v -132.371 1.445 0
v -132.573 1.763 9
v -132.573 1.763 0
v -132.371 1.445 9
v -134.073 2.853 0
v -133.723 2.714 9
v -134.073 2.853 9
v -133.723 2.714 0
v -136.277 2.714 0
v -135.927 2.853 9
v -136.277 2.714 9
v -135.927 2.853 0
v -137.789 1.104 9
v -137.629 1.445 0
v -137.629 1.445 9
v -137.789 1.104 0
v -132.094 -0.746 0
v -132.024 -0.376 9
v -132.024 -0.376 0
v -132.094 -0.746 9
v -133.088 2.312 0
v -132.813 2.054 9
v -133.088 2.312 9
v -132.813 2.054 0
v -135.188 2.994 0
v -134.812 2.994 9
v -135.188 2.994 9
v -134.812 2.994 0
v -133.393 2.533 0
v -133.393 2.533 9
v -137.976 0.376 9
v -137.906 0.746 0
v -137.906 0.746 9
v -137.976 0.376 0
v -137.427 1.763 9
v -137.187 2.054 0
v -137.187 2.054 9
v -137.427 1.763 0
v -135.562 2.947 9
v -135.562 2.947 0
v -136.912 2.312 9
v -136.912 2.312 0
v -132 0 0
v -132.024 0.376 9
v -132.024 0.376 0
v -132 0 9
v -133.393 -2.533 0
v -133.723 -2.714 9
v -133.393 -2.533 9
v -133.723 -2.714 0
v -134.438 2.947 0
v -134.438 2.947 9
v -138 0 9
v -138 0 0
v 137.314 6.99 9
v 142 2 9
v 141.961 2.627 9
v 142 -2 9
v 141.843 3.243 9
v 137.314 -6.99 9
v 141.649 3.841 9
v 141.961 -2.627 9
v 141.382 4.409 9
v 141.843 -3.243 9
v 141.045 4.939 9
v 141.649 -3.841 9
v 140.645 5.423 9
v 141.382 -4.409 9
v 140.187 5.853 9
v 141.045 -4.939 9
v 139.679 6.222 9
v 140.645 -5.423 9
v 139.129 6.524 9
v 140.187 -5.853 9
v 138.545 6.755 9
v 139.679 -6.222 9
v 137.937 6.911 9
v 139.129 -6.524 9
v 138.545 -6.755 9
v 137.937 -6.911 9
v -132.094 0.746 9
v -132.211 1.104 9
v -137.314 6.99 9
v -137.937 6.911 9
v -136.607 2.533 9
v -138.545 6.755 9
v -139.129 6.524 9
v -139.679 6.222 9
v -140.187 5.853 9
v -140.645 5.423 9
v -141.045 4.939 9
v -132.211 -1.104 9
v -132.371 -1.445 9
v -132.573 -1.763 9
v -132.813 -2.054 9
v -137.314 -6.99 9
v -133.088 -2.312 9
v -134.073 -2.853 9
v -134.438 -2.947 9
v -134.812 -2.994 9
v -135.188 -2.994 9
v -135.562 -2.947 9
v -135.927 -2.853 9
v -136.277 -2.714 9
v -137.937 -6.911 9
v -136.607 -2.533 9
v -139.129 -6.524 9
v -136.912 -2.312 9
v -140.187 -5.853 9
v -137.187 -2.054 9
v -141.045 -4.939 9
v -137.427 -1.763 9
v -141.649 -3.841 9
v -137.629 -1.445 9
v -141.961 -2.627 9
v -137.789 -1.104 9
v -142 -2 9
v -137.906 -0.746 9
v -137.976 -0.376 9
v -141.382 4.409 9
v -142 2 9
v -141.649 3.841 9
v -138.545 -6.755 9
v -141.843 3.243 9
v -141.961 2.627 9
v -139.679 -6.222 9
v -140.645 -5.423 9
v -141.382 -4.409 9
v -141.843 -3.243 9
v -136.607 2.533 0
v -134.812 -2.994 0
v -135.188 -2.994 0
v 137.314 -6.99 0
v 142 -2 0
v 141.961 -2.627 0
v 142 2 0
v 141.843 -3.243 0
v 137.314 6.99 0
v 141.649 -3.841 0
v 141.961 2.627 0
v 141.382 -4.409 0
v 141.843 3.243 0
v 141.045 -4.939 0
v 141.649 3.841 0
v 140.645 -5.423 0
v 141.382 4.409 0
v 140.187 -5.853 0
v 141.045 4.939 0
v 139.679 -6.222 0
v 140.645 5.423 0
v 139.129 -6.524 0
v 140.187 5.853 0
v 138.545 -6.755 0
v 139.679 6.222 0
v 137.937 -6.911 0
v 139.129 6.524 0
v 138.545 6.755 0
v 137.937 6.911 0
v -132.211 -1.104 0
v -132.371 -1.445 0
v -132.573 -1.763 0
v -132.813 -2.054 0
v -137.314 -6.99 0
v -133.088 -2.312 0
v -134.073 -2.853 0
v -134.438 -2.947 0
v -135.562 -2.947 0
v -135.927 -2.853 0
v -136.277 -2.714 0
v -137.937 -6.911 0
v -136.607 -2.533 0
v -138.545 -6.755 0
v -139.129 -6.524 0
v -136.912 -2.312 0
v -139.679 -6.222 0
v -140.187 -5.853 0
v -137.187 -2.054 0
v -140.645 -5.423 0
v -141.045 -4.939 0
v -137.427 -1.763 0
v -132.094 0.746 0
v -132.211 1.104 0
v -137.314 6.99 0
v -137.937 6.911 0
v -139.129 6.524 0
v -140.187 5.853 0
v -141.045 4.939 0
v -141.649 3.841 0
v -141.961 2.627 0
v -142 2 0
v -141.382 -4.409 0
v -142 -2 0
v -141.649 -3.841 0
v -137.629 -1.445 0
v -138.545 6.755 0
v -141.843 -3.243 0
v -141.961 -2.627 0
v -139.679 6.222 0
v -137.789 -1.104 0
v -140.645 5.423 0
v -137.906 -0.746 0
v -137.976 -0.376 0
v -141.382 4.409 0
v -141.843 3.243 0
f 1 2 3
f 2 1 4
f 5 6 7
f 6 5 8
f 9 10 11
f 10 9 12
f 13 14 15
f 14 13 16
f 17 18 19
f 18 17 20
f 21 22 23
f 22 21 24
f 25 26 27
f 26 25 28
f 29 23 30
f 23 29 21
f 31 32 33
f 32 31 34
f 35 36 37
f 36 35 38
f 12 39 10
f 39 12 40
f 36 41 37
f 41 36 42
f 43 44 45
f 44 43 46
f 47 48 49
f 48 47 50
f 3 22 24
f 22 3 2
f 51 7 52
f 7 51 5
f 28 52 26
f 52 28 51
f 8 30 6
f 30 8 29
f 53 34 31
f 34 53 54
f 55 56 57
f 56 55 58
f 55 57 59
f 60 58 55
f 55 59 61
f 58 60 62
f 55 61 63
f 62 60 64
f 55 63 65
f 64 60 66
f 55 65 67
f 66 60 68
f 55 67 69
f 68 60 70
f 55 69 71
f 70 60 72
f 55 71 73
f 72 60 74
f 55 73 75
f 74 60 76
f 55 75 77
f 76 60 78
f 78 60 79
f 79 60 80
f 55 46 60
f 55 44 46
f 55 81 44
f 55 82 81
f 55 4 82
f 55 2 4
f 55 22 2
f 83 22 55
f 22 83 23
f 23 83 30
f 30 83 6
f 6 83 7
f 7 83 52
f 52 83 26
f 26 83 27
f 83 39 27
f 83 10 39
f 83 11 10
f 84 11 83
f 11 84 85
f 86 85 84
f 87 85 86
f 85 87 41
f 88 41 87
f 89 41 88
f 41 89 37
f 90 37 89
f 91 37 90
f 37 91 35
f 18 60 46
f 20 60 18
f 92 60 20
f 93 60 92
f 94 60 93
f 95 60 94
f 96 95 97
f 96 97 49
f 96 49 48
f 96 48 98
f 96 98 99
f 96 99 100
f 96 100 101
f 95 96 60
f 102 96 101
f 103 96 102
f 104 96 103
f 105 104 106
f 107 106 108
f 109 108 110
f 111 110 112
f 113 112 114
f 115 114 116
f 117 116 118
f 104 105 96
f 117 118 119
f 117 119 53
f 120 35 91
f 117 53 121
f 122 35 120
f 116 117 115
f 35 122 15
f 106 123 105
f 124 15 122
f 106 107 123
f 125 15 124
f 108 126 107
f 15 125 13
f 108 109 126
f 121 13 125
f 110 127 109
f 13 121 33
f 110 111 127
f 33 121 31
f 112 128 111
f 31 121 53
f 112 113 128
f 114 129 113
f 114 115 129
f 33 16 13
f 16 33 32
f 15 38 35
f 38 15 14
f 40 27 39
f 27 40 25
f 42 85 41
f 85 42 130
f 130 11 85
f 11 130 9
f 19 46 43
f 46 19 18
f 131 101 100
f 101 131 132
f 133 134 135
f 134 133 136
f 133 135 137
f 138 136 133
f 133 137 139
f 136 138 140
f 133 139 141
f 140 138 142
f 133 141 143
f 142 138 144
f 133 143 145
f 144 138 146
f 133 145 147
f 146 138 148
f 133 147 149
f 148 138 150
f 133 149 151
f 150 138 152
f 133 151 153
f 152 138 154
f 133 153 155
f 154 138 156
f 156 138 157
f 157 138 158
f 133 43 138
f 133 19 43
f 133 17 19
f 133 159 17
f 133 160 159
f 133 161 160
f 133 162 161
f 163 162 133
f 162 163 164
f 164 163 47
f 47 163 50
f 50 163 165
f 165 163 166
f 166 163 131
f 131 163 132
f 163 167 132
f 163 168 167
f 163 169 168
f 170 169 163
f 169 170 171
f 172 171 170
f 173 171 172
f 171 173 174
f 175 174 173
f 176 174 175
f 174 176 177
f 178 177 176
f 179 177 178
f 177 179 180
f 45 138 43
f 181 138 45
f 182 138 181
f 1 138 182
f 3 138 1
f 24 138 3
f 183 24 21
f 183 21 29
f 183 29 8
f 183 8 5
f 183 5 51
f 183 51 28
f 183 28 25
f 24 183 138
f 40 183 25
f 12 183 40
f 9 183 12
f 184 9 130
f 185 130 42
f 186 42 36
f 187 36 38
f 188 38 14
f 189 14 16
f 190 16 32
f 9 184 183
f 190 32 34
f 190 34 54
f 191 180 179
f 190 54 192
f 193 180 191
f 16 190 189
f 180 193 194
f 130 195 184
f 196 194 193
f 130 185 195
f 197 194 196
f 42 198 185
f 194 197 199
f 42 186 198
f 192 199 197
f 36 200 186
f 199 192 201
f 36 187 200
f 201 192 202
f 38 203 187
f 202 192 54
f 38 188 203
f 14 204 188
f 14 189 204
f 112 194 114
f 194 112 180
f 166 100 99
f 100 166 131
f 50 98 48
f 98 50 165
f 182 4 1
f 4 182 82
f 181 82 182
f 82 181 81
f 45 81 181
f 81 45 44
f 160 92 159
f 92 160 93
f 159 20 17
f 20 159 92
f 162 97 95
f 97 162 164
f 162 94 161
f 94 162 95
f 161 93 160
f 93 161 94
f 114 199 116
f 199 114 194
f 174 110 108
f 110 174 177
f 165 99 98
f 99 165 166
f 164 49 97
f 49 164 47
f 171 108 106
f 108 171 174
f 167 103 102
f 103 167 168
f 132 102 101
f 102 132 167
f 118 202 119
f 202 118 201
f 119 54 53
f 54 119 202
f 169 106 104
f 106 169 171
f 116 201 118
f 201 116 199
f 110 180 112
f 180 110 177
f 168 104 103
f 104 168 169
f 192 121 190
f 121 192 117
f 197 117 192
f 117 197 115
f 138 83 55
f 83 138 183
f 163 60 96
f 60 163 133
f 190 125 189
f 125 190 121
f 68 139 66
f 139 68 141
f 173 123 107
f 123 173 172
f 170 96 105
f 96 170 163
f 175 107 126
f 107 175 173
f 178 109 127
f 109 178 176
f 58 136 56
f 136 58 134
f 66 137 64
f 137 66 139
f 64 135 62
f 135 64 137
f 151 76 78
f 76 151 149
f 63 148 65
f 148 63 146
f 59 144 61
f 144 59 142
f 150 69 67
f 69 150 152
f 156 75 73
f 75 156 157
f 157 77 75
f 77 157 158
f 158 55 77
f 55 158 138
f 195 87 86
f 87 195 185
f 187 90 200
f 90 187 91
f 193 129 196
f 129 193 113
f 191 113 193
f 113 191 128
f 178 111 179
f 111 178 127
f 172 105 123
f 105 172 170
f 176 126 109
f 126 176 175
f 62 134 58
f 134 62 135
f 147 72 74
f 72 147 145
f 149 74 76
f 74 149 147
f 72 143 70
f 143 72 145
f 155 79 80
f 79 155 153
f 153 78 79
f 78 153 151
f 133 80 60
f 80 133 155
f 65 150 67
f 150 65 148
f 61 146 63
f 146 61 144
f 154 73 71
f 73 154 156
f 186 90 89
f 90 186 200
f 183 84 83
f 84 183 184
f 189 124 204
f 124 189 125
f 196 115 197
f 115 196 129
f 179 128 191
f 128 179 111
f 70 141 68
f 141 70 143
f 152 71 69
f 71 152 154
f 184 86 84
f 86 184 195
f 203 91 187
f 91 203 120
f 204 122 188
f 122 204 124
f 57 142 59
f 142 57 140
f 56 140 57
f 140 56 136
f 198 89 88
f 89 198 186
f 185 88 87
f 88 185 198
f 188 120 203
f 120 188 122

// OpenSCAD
$fn = 50;


difference() {
	union() {
		hull() {
			translate(v = [-137.0000000000, 2.0000000000, 0]) {
				cylinder(h = 9, r = 5);
			}
			translate(v = [137.0000000000, 2.0000000000, 0]) {
				cylinder(h = 9, r = 5);
			}
			translate(v = [-137.0000000000, -2.0000000000, 0]) {
				cylinder(h = 9, r = 5);
			}
			translate(v = [137.0000000000, -2.0000000000, 0]) {
				cylinder(h = 9, r = 5);
			}
		}
	}
	union() {
		translate(v = [-135.0000000000, 0.0000000000, 0]) {
			cylinder(h = 9, r = 3.0000000000);
		}
		translate(v = [-135.0000000000, 0.0000000000, 0]) {
			cylinder(h = 9, r = 1.5000000000);
		}
		translate(v = [-135.0000000000, 0.0000000000, 0]) {
			cylinder(h = 9, r = 1.5000000000);
		}
		translate(v = [-135.0000000000, 0.0000000000, 0]) {
			cylinder(h = 9, r = 1.5000000000);
		}
	}
}
